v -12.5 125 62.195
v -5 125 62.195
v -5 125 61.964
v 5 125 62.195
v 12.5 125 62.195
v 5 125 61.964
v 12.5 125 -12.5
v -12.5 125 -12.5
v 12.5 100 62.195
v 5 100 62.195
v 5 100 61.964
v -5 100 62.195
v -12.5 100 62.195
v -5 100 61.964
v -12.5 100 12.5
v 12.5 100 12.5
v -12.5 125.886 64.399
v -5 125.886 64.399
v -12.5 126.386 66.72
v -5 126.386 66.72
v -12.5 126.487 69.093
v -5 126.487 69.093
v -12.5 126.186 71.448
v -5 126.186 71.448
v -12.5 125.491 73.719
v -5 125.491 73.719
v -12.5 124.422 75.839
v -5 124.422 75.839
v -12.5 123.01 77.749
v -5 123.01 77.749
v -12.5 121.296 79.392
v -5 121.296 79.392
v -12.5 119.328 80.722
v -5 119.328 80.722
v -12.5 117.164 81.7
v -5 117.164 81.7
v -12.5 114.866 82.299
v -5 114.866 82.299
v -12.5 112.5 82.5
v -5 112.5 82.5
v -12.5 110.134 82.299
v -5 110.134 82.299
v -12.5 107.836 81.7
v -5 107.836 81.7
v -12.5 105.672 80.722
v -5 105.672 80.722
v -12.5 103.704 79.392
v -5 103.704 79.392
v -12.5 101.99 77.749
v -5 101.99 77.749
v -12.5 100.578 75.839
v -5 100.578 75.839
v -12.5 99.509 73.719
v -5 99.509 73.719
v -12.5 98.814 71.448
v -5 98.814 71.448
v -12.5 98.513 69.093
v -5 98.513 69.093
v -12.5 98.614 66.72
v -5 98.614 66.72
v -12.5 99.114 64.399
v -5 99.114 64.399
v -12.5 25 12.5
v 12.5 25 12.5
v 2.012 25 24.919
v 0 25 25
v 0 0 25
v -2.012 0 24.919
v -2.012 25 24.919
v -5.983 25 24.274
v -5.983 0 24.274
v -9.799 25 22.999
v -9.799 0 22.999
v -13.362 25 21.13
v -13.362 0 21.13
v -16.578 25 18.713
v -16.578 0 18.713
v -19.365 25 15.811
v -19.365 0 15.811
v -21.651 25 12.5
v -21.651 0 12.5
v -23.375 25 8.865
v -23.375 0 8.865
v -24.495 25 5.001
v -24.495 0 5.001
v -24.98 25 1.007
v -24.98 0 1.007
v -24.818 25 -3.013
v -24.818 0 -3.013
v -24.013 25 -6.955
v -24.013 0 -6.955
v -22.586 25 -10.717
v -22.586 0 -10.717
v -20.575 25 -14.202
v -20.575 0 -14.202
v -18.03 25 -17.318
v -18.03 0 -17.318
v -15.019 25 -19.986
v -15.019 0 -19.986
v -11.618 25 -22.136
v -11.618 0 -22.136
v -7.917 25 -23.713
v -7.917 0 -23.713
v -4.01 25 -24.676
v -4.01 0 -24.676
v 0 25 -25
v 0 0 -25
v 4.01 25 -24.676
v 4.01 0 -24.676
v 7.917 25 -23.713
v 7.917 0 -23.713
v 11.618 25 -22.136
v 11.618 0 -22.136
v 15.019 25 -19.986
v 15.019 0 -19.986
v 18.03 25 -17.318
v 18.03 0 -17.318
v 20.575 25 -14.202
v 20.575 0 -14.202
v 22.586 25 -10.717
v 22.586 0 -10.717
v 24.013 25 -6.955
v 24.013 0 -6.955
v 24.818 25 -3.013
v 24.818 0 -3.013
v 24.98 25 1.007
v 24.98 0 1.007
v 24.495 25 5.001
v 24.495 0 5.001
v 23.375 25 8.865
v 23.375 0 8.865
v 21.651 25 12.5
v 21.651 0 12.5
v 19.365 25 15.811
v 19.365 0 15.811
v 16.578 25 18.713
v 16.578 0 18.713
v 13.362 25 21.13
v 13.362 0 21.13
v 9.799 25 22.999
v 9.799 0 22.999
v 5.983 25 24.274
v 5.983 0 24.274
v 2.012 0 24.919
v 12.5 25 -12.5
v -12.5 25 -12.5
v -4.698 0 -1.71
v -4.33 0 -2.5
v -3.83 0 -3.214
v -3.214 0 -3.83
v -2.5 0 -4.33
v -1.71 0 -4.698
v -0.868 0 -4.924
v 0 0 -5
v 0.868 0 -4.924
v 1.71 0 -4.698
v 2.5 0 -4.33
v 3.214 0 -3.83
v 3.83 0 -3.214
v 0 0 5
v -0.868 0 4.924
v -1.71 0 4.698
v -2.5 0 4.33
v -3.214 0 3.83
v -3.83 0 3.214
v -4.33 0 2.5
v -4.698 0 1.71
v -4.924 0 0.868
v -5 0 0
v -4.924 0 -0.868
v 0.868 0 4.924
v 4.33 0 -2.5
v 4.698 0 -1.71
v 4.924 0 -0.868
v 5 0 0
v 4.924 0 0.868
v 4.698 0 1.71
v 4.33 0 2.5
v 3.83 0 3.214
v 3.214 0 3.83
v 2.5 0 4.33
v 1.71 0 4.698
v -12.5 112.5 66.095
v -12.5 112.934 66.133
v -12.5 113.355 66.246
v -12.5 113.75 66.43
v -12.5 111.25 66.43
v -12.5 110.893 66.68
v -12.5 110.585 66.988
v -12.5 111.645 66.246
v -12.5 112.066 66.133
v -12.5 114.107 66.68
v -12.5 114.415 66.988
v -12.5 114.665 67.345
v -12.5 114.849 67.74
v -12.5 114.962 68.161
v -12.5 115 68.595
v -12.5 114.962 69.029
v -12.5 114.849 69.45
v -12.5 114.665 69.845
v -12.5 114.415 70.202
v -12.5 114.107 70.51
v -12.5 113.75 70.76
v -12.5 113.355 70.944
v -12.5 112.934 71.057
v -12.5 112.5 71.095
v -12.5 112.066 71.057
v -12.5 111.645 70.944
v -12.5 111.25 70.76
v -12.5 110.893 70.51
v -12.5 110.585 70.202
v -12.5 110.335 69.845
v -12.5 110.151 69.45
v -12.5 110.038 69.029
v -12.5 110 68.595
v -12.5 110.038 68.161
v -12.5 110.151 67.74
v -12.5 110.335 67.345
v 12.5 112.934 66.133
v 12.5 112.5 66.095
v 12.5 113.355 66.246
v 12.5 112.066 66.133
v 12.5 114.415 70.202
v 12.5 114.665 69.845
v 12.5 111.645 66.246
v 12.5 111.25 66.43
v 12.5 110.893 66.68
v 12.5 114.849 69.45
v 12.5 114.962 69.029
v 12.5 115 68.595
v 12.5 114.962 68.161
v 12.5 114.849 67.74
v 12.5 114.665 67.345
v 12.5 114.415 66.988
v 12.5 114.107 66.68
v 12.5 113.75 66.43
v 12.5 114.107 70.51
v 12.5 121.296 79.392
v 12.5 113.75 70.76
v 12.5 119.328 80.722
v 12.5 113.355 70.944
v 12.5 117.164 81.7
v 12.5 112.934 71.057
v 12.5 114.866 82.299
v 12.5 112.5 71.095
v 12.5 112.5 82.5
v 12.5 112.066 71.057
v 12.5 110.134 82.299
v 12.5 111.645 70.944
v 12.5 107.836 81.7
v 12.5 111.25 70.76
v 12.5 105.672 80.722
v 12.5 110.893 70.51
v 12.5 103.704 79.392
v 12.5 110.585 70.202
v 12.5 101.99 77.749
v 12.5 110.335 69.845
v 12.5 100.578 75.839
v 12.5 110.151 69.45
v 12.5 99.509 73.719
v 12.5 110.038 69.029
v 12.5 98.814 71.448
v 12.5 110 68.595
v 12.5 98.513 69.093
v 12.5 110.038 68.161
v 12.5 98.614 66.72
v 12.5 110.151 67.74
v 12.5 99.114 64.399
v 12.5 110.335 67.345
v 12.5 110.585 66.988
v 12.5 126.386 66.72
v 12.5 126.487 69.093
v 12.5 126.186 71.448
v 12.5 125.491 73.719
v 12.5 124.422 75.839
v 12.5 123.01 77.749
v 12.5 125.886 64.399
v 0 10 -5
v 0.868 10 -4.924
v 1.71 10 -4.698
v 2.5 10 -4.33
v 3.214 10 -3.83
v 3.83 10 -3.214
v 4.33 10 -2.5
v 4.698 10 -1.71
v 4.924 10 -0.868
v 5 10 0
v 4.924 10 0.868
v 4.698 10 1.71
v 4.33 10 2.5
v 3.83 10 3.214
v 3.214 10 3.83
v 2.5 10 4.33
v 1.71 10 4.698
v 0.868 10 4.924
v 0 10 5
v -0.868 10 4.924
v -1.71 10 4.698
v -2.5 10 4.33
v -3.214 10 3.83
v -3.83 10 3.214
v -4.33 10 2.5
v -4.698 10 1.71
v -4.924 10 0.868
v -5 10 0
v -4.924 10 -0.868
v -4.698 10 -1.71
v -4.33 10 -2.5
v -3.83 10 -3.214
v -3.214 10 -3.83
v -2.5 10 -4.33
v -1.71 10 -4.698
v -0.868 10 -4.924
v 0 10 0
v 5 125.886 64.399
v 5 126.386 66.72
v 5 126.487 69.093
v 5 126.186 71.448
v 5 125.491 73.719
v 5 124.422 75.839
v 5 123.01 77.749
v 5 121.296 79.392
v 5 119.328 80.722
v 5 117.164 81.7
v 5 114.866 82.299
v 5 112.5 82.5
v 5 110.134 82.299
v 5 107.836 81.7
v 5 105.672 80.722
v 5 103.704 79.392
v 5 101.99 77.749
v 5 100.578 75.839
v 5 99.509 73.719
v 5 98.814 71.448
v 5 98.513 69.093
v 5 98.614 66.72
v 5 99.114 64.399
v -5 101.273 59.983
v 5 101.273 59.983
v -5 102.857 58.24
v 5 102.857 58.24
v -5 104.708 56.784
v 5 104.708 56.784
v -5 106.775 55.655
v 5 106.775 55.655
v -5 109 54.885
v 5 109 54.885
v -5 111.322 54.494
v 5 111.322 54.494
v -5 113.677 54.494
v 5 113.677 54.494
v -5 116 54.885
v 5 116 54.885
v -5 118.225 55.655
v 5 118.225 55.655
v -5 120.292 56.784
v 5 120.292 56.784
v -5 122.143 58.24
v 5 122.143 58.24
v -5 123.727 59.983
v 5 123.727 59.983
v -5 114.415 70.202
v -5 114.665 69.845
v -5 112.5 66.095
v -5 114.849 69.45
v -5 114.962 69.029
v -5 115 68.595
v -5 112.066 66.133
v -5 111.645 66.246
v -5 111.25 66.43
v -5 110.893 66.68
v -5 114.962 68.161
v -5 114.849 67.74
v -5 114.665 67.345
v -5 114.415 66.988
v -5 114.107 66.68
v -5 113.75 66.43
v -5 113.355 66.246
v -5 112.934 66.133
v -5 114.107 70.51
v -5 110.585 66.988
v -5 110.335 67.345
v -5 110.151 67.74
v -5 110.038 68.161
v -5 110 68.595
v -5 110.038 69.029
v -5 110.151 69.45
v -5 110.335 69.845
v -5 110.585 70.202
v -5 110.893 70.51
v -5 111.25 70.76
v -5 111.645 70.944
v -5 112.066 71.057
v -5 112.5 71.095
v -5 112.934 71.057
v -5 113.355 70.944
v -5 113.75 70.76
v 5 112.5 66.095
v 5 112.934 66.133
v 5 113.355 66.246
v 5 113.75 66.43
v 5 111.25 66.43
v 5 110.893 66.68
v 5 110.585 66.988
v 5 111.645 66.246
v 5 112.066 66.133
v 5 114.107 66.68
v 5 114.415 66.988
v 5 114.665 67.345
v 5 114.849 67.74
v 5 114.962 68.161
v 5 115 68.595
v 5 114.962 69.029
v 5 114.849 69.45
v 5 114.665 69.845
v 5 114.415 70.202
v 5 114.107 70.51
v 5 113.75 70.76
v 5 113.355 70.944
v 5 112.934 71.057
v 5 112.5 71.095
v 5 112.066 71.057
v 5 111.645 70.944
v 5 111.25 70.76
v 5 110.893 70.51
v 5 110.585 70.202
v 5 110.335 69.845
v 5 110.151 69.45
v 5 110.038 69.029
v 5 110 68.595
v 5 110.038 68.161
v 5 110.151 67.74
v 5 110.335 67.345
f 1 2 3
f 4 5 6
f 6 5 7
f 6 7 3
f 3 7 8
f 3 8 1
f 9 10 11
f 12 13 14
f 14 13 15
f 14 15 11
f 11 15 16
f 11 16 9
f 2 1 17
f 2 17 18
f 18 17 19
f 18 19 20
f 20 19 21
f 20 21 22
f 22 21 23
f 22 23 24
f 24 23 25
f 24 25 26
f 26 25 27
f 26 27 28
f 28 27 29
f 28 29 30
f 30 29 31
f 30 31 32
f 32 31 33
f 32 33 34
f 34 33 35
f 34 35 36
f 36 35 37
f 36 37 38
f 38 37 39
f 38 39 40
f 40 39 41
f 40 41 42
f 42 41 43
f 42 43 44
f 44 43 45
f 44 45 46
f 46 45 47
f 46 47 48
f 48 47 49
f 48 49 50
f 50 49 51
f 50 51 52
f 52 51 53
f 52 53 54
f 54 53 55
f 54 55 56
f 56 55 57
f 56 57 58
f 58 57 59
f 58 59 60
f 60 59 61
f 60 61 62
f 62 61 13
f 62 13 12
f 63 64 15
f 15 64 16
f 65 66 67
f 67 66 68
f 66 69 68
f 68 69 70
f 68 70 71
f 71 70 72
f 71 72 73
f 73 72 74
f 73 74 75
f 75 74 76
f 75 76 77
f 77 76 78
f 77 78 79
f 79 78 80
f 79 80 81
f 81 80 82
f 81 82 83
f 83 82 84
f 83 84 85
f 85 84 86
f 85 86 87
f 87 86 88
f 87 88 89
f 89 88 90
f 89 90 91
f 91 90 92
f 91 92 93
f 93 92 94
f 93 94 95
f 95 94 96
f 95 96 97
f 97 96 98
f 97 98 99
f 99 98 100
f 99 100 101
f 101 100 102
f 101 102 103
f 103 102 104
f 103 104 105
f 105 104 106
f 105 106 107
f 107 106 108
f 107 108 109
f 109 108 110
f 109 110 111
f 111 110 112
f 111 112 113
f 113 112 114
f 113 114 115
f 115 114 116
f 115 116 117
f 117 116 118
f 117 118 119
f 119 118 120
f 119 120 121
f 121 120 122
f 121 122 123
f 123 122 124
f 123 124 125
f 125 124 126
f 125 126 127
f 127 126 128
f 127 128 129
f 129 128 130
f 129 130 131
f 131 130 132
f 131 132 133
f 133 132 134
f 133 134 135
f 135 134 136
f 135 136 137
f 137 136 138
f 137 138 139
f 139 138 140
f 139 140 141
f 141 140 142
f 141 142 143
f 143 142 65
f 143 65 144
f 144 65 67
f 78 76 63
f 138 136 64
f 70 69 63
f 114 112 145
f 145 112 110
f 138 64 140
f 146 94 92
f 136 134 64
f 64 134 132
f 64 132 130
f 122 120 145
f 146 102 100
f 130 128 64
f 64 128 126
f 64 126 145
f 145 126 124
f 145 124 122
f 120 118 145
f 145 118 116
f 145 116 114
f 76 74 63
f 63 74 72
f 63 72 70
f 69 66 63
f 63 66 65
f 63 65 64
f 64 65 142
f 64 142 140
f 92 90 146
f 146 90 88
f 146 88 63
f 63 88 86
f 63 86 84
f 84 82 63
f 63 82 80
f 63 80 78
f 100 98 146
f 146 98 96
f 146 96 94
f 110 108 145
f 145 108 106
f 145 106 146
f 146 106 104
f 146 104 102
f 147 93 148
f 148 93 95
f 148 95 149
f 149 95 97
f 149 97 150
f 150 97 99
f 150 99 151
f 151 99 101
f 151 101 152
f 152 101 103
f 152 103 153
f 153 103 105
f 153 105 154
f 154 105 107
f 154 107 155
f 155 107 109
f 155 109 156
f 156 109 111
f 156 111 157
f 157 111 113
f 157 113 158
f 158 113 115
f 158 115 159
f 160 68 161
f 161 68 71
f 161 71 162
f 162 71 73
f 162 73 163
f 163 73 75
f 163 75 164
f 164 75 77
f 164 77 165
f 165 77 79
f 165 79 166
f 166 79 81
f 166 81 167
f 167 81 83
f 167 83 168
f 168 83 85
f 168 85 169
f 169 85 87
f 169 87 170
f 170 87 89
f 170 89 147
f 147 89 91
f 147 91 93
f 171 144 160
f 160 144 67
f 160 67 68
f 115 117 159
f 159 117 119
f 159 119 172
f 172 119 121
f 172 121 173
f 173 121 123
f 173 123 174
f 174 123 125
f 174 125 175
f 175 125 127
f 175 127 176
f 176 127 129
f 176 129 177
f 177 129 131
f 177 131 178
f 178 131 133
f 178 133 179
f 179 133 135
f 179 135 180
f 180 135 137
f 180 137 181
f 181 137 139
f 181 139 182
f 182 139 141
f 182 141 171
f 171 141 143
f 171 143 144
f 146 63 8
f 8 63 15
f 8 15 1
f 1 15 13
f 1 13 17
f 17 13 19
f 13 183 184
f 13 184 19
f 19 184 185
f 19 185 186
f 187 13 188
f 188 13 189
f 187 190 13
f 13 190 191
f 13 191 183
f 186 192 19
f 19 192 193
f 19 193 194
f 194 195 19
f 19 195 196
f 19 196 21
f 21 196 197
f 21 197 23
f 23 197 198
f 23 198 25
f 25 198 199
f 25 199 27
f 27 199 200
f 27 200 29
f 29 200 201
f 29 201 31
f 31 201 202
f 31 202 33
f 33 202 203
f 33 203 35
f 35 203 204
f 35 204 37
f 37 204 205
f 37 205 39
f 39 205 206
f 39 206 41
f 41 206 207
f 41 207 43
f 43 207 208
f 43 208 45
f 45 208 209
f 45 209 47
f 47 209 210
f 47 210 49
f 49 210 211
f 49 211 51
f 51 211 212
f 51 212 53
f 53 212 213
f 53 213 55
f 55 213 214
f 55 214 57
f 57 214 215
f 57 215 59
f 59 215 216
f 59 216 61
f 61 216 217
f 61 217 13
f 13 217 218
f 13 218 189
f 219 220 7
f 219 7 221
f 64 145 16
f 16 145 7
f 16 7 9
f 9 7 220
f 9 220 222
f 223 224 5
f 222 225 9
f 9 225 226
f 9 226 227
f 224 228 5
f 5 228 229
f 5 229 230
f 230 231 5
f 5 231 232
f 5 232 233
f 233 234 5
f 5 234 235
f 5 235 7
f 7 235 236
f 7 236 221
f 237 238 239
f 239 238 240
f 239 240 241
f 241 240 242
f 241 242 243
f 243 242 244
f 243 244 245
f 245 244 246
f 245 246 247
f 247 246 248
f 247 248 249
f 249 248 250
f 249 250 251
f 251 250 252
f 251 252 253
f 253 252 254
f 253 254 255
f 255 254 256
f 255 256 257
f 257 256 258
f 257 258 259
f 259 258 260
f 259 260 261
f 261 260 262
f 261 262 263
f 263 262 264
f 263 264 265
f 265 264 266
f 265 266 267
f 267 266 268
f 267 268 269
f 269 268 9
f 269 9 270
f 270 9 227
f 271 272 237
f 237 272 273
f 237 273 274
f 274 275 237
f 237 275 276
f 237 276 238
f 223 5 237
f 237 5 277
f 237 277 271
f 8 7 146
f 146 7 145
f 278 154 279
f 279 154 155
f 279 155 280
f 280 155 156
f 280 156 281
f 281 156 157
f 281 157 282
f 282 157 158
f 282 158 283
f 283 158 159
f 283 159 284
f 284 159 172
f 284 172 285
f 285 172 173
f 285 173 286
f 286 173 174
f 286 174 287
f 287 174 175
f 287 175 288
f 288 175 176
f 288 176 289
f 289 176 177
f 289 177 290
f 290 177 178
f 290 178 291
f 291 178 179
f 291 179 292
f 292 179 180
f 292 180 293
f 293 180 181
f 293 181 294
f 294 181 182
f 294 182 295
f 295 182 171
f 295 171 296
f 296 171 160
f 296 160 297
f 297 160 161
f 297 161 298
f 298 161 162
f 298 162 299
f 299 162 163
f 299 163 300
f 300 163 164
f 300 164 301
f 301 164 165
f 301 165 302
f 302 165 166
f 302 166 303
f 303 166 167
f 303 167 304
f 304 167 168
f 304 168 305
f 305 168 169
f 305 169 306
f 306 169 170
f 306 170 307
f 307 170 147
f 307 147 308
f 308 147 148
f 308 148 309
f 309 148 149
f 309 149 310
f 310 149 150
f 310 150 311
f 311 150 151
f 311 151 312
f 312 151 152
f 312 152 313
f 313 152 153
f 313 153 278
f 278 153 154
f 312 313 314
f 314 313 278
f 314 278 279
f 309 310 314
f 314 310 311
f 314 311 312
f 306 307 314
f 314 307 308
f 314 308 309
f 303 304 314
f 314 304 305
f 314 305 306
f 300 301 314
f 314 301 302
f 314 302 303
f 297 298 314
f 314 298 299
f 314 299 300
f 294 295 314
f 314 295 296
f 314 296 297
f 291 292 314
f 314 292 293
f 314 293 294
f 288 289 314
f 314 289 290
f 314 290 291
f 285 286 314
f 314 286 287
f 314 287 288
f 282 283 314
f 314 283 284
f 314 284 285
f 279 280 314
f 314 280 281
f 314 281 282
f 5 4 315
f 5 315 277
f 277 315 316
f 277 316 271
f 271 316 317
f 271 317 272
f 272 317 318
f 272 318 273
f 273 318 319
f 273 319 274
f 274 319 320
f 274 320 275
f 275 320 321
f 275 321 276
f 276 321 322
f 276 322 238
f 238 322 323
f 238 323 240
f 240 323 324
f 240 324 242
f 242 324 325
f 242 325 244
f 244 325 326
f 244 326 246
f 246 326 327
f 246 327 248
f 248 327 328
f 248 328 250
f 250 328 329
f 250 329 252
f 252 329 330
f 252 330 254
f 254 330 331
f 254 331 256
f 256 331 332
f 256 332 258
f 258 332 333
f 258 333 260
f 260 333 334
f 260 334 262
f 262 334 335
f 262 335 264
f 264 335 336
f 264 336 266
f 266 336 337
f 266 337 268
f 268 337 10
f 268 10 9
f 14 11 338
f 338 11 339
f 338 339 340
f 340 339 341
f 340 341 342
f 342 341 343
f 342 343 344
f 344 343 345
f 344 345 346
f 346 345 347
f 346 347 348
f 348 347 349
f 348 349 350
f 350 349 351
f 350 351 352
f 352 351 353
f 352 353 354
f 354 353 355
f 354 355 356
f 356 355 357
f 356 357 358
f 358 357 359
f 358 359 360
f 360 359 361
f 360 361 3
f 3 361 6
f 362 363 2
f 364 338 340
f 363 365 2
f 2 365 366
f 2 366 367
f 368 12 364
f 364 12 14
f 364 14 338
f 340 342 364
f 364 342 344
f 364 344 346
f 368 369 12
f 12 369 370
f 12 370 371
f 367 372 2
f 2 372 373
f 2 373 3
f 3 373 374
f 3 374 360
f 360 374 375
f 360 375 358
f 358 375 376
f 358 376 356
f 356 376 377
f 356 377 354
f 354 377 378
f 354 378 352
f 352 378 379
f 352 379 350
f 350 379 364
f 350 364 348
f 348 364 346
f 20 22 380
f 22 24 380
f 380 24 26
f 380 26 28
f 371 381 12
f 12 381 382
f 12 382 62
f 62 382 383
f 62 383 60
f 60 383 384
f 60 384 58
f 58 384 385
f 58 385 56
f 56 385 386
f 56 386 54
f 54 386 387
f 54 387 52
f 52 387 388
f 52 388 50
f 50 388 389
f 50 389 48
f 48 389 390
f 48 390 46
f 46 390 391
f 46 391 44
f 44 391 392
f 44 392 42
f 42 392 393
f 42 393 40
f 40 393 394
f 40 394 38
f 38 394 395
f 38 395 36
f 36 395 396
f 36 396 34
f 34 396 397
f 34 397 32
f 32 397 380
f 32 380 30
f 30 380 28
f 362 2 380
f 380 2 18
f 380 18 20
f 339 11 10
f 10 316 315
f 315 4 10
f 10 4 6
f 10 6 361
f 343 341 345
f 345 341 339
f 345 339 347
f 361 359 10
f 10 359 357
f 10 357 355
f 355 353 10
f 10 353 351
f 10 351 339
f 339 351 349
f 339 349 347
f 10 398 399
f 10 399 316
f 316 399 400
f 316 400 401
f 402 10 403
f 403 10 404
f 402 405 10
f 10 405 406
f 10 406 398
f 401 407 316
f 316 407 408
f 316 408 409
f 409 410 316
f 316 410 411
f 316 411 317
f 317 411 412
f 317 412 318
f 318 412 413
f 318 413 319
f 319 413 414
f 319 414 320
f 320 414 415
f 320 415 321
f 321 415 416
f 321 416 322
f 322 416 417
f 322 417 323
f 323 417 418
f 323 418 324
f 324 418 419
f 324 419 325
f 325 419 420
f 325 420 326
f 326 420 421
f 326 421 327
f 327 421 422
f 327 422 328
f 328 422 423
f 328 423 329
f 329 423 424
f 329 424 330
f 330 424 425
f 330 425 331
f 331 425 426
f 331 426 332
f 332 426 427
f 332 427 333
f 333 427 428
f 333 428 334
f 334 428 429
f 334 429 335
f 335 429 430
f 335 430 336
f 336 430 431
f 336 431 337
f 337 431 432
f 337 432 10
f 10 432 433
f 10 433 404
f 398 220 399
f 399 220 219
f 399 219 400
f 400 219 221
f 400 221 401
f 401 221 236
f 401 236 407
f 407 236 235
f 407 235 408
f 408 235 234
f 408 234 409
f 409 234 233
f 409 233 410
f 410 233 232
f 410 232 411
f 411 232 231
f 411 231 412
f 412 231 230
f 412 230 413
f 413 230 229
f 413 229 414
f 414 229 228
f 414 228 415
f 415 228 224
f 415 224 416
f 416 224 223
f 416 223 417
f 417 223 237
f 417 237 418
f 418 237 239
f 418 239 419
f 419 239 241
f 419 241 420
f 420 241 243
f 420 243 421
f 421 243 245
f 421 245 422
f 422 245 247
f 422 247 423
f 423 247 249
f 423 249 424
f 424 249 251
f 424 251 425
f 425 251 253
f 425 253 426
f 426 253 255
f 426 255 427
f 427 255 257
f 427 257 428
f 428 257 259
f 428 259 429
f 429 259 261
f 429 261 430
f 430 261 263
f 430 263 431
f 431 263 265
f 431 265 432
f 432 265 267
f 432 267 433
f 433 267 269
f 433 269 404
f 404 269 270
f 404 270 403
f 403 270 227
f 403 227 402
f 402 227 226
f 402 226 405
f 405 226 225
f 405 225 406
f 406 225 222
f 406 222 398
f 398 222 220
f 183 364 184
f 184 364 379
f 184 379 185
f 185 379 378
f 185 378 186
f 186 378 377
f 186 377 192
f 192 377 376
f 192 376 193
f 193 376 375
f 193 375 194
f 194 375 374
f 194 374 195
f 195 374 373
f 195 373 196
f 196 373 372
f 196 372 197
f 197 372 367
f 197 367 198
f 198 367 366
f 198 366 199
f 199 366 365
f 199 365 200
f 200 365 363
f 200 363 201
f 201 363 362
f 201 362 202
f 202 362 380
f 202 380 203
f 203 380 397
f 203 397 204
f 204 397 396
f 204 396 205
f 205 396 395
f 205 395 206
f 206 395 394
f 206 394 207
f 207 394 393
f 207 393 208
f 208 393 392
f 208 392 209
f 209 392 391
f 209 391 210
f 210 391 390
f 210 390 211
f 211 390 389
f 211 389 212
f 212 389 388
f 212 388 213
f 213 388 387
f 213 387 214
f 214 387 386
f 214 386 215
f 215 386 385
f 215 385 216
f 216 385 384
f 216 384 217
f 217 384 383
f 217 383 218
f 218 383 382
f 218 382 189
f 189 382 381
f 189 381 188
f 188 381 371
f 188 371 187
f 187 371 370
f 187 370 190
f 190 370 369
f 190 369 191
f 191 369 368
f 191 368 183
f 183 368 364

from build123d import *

# Parameters (mm, degrees)
SKETCH1_R               = 25
BOSS_EXTRUDE1_DEPTH     = 25
SKETCH2_W               = 25
SKETCH2_H               = 25
BOSS_EXTRUDE2_DEPTH     = 100
SKETCH7_R               = 5
CUT_EXTRUDE2_DEPTH      = 10
SKETCH8_W               = 25
SKETCH8_H               = 25
BOSS_EXTRUDE3_DEPTH     = 50
SKETCH10_R              = 14
BOSS_EXTRUDE4_DEPTH     = 12.5
SKETCH13_R              = 14.15
CUT_EXTRUDE4_DEPTH      = 5
CUT_EXTRUDE5_DEPTH      = 154.080044421
CUT_EXTRUDE5_DEPTH_BACK = 154.080044421
SKETCH14_R              = 2.5


with BuildPart() as part:
    # Sketch1 → Boss-Extrude1 (new body)
    with BuildSketch(Plane(origin=(0, 0, 0), x_dir=(1, 0, 0), z_dir=(0, 1, 0))):
        Circle(SKETCH1_R)
    extrude(amount=BOSS_EXTRUDE1_DEPTH)

    # Sketch2 → Boss-Extrude2 (add)
    with BuildSketch(Plane(origin=(0, 25, 0), x_dir=(1, 0, 0), z_dir=(0, 1, 0))):
        Rectangle(SKETCH2_W, SKETCH2_H)
    extrude(amount=BOSS_EXTRUDE2_DEPTH)

    # Sketch7 → Cut-Extrude2 (cut)
    with BuildSketch(Plane.XZ):
        Circle(SKETCH7_R)
    extrude(amount=-CUT_EXTRUDE2_DEPTH, mode=Mode.SUBTRACT)

    # Sketch8 → Boss-Extrude3 (add)
    with BuildSketch(Plane.XY.offset(12.5)):
        with Locations((0, 112.5)):
            Rectangle(SKETCH8_W, SKETCH8_H)
    extrude(amount=BOSS_EXTRUDE3_DEPTH)

    # Sketch10 → Boss-Extrude4 (add, symmetric)
    with BuildSketch(Plane(origin=(0, 0, 0), x_dir=(0, 0, -1), z_dir=(1, 0, 0))):
        with Locations((-68.5, 112.5)):
            Circle(SKETCH10_R)
    extrude(amount=BOSS_EXTRUDE4_DEPTH, both=True)

    # Sketch13 → Cut-Extrude4 (cut, symmetric)
    with BuildSketch(Plane(origin=(0, 0, 0), x_dir=(0, 0, -1), z_dir=(1, 0, 0))):
        with Locations((-68.595239894, 112.5)):
            Circle(SKETCH13_R)
    extrude(amount=CUT_EXTRUDE4_DEPTH, both=True, mode=Mode.SUBTRACT)

    # Sketch14 → Cut-Extrude5 (cut, two sides: drawn at the far end of the back side and taken through both)
    with BuildSketch(Plane(origin=(0, 0, 0), x_dir=(0, 0, -1), z_dir=(1, 0, 0)).offset(-CUT_EXTRUDE5_DEPTH_BACK)):
        with Locations((-68.595239894, 112.5)):
            Circle(SKETCH14_R)
    extrude(amount=CUT_EXTRUDE5_DEPTH + CUT_EXTRUDE5_DEPTH_BACK, mode=Mode.SUBTRACT)


solid = part.part
